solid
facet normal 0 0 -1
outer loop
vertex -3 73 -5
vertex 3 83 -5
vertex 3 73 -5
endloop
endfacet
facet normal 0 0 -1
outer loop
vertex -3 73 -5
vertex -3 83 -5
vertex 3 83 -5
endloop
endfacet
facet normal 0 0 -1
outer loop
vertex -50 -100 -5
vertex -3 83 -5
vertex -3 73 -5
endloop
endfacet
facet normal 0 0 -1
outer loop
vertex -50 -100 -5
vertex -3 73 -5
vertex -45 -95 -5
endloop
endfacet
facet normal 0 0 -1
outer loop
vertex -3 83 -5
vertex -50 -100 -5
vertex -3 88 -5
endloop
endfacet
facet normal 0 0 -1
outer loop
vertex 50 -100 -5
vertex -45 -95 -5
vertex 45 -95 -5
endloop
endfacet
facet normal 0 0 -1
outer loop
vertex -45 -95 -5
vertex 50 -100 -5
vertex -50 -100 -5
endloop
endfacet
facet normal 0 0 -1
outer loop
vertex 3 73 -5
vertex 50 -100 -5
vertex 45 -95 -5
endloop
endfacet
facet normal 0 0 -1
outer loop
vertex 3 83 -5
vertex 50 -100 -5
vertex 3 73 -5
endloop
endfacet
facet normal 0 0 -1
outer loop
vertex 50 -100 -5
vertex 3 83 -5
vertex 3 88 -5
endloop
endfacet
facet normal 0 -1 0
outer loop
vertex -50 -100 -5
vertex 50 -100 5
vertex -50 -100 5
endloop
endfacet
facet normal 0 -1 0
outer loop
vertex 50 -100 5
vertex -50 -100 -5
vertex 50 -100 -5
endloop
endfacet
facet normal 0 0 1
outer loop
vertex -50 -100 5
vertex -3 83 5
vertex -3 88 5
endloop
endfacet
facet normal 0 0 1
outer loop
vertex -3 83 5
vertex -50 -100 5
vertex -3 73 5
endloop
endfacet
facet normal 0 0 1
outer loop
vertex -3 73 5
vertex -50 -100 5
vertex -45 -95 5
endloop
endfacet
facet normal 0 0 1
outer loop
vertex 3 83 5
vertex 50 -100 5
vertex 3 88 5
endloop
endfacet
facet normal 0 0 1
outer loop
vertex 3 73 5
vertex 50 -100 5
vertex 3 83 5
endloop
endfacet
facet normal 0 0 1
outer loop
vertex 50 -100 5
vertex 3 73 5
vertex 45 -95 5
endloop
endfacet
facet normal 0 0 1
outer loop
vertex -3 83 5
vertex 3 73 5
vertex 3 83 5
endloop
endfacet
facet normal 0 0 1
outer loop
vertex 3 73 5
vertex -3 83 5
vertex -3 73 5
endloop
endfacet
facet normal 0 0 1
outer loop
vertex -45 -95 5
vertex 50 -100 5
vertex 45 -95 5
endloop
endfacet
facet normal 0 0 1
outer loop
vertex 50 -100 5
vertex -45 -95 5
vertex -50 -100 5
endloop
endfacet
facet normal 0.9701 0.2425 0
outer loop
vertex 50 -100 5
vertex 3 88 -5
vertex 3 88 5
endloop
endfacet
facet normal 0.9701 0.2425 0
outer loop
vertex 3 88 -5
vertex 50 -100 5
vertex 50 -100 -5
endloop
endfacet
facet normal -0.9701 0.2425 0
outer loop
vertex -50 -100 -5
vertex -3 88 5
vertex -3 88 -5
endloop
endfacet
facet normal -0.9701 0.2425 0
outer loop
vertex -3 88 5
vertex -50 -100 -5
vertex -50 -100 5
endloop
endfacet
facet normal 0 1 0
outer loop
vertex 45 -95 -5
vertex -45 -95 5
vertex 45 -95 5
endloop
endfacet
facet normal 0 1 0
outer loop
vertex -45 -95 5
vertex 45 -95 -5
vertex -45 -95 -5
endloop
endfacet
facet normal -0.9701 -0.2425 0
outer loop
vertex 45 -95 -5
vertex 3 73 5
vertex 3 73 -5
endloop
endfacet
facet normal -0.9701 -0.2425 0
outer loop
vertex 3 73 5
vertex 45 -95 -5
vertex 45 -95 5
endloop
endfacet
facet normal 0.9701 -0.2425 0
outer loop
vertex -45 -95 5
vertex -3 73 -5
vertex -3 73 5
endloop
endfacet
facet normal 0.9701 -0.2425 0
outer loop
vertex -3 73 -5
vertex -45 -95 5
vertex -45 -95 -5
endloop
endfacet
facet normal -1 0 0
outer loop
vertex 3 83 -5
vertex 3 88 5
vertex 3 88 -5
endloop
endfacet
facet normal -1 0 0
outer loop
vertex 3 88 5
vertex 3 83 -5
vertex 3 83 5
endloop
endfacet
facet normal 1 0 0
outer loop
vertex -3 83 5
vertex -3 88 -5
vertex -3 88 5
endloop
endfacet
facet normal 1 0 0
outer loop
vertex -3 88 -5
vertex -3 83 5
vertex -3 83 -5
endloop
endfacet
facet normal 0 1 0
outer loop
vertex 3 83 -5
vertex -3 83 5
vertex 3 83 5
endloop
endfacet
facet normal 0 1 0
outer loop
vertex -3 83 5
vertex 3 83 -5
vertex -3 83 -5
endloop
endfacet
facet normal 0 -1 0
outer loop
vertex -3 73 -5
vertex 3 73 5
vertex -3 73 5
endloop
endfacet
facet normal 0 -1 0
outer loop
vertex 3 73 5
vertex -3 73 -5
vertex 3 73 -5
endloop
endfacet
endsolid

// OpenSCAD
$fn = 100;
union()
{
  difference()
  {
    difference()
    {
      translate(v = [0, 0, -5])
      {
        linear_extrude(height = 10, center = false, convexity = undef, twist = undef, slices = undef, scale = 1, $fn = 20)
        {
          polygon(points = [[-50, -100], [50, -100], [0, 100]], paths = undef, convexity = 1);
        }
      }
    }
    translate(v = [0, -5, 0])
    {
      scale(v = [1, 1, 2])
      {
        scale(v = 0.9)
        {
          difference()
          {
            translate(v = [0, 0, -5])
            {
              linear_extrude(height = 10, center = false, convexity = undef, twist = undef, slices = undef, scale = 1, $fn = 20)
              {
                polygon(points = [[-50, -100], [50, -100], [0, 100]], paths = undef, convexity = 1);
              }
            }
          }
        }
      }
    }
    translate(v = [0, 90, 0])
    {
      cube(size = [6, 30, 40], center = true);
    }
  }
  translate(v = [0, 78, 0])
  {
    cube(size = [6, 10, 10], center = true);
  }
}
